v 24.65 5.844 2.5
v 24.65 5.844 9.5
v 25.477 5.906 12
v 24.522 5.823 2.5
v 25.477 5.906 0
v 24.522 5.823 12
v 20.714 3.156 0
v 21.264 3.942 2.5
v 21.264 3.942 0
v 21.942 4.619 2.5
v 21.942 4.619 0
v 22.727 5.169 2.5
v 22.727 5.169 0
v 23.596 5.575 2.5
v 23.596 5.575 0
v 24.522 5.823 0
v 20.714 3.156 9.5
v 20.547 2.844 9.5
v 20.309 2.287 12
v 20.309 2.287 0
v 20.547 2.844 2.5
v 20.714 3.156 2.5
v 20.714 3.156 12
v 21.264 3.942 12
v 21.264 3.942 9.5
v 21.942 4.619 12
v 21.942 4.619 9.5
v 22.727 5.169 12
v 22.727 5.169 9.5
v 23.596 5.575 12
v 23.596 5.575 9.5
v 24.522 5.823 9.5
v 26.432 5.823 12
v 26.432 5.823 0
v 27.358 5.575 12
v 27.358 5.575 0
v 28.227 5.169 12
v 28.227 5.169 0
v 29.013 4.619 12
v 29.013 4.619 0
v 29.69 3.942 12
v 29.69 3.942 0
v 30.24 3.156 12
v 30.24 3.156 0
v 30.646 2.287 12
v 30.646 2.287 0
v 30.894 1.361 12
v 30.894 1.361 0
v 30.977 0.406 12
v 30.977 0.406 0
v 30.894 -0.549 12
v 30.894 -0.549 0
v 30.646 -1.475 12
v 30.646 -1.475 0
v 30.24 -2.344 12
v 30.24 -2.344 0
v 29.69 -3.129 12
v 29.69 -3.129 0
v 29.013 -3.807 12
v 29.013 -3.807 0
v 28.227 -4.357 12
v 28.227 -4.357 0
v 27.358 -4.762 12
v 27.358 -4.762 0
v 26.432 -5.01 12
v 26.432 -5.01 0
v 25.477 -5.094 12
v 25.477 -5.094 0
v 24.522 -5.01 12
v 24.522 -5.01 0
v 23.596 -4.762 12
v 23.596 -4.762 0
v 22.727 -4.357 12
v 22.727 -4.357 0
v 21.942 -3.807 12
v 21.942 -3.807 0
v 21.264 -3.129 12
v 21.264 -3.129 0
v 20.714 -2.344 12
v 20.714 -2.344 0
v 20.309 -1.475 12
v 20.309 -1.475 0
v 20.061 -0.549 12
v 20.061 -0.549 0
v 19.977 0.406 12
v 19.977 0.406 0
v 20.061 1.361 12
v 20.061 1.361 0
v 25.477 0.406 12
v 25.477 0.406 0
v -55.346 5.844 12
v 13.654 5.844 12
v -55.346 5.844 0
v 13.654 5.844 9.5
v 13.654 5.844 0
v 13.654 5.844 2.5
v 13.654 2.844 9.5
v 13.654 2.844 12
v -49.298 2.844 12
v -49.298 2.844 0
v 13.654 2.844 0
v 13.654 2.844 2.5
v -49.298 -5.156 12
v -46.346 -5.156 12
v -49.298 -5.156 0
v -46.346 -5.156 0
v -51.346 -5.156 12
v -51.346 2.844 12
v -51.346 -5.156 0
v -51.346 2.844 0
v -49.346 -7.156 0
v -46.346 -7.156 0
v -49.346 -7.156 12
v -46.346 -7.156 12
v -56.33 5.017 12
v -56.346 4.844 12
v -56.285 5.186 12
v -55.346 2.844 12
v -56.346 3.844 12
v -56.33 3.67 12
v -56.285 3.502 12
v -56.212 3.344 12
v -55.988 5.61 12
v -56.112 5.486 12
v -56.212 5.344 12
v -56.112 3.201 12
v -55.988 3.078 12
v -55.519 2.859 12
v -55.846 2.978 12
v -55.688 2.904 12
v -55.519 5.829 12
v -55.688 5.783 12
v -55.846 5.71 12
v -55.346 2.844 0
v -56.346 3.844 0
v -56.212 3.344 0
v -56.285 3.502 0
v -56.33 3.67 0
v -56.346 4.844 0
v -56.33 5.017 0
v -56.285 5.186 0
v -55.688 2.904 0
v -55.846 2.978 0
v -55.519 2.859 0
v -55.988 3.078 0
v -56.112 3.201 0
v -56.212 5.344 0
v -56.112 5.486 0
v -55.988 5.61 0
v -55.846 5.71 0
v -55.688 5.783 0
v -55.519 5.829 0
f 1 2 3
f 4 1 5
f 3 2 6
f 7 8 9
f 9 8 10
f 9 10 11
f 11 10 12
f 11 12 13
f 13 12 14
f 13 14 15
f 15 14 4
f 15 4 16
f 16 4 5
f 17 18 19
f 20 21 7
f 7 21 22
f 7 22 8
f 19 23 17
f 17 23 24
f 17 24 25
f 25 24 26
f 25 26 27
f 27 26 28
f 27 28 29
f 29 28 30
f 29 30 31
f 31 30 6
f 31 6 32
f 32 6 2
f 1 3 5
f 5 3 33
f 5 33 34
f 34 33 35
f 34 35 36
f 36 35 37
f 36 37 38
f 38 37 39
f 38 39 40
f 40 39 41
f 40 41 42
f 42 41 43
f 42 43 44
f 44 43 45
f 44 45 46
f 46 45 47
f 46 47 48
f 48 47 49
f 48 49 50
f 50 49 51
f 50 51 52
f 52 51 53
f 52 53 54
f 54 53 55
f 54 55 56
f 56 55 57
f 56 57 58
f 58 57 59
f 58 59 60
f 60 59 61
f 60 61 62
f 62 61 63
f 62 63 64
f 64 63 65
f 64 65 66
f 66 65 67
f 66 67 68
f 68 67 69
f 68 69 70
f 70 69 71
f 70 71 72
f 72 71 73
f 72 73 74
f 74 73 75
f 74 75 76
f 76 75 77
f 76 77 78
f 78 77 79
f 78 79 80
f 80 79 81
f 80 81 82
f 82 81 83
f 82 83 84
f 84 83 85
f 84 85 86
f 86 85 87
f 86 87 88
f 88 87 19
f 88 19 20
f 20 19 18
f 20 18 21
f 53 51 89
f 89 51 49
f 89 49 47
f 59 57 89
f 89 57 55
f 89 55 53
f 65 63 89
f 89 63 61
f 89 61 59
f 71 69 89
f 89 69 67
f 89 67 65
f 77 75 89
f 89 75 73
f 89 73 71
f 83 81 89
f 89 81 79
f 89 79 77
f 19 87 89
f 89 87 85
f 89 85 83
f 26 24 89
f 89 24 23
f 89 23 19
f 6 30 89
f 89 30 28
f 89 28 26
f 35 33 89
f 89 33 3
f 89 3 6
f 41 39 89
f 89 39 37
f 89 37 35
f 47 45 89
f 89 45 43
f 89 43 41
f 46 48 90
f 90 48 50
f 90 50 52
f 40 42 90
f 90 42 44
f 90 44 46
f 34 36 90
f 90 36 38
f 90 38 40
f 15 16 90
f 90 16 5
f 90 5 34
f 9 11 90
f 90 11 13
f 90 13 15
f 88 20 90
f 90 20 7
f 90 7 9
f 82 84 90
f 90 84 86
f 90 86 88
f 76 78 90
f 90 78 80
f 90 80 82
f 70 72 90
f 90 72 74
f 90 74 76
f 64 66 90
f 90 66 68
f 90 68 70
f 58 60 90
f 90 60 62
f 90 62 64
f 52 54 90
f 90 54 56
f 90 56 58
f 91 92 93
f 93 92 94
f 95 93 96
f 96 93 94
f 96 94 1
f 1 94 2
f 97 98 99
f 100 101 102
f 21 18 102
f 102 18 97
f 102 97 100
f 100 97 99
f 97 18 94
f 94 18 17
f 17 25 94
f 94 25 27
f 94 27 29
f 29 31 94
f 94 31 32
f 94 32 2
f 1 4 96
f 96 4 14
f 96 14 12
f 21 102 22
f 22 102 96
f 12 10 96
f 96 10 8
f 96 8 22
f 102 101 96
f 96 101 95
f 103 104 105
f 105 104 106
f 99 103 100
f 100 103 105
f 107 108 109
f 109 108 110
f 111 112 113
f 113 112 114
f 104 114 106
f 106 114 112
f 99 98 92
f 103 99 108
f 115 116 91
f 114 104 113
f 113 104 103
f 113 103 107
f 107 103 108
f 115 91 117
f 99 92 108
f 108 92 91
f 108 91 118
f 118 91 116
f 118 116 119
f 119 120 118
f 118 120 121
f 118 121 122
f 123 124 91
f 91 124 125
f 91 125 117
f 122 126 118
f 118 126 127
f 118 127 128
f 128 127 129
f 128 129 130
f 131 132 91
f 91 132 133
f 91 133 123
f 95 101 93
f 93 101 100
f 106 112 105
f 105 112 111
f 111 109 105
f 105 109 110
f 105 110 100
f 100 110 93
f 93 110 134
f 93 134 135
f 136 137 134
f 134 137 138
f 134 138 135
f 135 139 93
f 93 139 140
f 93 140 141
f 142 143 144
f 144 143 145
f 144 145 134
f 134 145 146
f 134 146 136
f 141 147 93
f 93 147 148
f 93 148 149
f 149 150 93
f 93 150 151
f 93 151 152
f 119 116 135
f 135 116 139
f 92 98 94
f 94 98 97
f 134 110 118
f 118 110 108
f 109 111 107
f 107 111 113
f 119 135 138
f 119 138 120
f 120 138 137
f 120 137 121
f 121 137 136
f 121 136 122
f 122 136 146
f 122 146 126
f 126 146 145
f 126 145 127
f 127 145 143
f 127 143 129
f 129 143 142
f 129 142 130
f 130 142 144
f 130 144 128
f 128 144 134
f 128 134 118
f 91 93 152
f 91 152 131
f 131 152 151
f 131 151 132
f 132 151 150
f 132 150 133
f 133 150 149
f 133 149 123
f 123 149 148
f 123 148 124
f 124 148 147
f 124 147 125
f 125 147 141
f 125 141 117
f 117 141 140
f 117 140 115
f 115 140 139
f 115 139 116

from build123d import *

# Parameters (mm, degrees)
ESQUISSE1_R        = 5.5
BOSS_EXTRU_1_DEPTH = 12
ESQUISSE2_W        = 12
ESQUISSE2_H        = 3
BOSS_EXTRU_2_DEPTH = 7
BOSS_EXTRU_3_DEPTH = 12
CHANFREIN1_SIZE    = 2
CONG_1_R           = 1


with BuildPart() as part:
    # Esquisse1 → Boss.-Extru.1 (new body)
    with BuildSketch(Plane.XY):
        with Locations((25.477220372, 0.406206053)):
            Circle(ESQUISSE1_R)
    extrude(amount=BOSS_EXTRU_1_DEPTH)

    # Esquisse2 → Boss.-Extru.2 (add)
    with BuildSketch(Plane.XY.offset(2.5)):
        with Locations((19.654430588, 4.343698911)):
            Rectangle(ESQUISSE2_W, ESQUISSE2_H)
    extrude(amount=BOSS_EXTRU_2_DEPTH)

    # Esquisse3 → Boss.-Extru.3 (add)
    with BuildSketch(Plane.XY):
        Polygon((-49.298156478, 2.843698911), (13.654430588, 2.843698911), (13.654430588, 5.843698911), (-56.345569412, 5.843698911), (-56.345569412, 2.843698911), (-51.345569412, 2.843698911), (-51.345569412, -7.156301089), (-46.345569412, -7.156301089), (-46.345569412, -5.156301089), (-49.298156478, -5.156301089), align=None)
    extrude(amount=BOSS_EXTRU_3_DEPTH)

    # Chanfrein1
    chanfrein1_edges = [part.edges().sort_by_distance(p)[0] for p in [
        (-51.345569412, -7.156301089, 6),
    ]]
    chamfer(chanfrein1_edges, length=CHANFREIN1_SIZE)

    # Congé1
    cong_1_edges = [part.edges().sort_by_distance(p)[0] for p in [
        (-56.345569412, 5.843698911, 6),
        (-56.345569412, 2.843698911, 6),
    ]]
    fillet(cong_1_edges, radius=CONG_1_R)


solid = part.part
